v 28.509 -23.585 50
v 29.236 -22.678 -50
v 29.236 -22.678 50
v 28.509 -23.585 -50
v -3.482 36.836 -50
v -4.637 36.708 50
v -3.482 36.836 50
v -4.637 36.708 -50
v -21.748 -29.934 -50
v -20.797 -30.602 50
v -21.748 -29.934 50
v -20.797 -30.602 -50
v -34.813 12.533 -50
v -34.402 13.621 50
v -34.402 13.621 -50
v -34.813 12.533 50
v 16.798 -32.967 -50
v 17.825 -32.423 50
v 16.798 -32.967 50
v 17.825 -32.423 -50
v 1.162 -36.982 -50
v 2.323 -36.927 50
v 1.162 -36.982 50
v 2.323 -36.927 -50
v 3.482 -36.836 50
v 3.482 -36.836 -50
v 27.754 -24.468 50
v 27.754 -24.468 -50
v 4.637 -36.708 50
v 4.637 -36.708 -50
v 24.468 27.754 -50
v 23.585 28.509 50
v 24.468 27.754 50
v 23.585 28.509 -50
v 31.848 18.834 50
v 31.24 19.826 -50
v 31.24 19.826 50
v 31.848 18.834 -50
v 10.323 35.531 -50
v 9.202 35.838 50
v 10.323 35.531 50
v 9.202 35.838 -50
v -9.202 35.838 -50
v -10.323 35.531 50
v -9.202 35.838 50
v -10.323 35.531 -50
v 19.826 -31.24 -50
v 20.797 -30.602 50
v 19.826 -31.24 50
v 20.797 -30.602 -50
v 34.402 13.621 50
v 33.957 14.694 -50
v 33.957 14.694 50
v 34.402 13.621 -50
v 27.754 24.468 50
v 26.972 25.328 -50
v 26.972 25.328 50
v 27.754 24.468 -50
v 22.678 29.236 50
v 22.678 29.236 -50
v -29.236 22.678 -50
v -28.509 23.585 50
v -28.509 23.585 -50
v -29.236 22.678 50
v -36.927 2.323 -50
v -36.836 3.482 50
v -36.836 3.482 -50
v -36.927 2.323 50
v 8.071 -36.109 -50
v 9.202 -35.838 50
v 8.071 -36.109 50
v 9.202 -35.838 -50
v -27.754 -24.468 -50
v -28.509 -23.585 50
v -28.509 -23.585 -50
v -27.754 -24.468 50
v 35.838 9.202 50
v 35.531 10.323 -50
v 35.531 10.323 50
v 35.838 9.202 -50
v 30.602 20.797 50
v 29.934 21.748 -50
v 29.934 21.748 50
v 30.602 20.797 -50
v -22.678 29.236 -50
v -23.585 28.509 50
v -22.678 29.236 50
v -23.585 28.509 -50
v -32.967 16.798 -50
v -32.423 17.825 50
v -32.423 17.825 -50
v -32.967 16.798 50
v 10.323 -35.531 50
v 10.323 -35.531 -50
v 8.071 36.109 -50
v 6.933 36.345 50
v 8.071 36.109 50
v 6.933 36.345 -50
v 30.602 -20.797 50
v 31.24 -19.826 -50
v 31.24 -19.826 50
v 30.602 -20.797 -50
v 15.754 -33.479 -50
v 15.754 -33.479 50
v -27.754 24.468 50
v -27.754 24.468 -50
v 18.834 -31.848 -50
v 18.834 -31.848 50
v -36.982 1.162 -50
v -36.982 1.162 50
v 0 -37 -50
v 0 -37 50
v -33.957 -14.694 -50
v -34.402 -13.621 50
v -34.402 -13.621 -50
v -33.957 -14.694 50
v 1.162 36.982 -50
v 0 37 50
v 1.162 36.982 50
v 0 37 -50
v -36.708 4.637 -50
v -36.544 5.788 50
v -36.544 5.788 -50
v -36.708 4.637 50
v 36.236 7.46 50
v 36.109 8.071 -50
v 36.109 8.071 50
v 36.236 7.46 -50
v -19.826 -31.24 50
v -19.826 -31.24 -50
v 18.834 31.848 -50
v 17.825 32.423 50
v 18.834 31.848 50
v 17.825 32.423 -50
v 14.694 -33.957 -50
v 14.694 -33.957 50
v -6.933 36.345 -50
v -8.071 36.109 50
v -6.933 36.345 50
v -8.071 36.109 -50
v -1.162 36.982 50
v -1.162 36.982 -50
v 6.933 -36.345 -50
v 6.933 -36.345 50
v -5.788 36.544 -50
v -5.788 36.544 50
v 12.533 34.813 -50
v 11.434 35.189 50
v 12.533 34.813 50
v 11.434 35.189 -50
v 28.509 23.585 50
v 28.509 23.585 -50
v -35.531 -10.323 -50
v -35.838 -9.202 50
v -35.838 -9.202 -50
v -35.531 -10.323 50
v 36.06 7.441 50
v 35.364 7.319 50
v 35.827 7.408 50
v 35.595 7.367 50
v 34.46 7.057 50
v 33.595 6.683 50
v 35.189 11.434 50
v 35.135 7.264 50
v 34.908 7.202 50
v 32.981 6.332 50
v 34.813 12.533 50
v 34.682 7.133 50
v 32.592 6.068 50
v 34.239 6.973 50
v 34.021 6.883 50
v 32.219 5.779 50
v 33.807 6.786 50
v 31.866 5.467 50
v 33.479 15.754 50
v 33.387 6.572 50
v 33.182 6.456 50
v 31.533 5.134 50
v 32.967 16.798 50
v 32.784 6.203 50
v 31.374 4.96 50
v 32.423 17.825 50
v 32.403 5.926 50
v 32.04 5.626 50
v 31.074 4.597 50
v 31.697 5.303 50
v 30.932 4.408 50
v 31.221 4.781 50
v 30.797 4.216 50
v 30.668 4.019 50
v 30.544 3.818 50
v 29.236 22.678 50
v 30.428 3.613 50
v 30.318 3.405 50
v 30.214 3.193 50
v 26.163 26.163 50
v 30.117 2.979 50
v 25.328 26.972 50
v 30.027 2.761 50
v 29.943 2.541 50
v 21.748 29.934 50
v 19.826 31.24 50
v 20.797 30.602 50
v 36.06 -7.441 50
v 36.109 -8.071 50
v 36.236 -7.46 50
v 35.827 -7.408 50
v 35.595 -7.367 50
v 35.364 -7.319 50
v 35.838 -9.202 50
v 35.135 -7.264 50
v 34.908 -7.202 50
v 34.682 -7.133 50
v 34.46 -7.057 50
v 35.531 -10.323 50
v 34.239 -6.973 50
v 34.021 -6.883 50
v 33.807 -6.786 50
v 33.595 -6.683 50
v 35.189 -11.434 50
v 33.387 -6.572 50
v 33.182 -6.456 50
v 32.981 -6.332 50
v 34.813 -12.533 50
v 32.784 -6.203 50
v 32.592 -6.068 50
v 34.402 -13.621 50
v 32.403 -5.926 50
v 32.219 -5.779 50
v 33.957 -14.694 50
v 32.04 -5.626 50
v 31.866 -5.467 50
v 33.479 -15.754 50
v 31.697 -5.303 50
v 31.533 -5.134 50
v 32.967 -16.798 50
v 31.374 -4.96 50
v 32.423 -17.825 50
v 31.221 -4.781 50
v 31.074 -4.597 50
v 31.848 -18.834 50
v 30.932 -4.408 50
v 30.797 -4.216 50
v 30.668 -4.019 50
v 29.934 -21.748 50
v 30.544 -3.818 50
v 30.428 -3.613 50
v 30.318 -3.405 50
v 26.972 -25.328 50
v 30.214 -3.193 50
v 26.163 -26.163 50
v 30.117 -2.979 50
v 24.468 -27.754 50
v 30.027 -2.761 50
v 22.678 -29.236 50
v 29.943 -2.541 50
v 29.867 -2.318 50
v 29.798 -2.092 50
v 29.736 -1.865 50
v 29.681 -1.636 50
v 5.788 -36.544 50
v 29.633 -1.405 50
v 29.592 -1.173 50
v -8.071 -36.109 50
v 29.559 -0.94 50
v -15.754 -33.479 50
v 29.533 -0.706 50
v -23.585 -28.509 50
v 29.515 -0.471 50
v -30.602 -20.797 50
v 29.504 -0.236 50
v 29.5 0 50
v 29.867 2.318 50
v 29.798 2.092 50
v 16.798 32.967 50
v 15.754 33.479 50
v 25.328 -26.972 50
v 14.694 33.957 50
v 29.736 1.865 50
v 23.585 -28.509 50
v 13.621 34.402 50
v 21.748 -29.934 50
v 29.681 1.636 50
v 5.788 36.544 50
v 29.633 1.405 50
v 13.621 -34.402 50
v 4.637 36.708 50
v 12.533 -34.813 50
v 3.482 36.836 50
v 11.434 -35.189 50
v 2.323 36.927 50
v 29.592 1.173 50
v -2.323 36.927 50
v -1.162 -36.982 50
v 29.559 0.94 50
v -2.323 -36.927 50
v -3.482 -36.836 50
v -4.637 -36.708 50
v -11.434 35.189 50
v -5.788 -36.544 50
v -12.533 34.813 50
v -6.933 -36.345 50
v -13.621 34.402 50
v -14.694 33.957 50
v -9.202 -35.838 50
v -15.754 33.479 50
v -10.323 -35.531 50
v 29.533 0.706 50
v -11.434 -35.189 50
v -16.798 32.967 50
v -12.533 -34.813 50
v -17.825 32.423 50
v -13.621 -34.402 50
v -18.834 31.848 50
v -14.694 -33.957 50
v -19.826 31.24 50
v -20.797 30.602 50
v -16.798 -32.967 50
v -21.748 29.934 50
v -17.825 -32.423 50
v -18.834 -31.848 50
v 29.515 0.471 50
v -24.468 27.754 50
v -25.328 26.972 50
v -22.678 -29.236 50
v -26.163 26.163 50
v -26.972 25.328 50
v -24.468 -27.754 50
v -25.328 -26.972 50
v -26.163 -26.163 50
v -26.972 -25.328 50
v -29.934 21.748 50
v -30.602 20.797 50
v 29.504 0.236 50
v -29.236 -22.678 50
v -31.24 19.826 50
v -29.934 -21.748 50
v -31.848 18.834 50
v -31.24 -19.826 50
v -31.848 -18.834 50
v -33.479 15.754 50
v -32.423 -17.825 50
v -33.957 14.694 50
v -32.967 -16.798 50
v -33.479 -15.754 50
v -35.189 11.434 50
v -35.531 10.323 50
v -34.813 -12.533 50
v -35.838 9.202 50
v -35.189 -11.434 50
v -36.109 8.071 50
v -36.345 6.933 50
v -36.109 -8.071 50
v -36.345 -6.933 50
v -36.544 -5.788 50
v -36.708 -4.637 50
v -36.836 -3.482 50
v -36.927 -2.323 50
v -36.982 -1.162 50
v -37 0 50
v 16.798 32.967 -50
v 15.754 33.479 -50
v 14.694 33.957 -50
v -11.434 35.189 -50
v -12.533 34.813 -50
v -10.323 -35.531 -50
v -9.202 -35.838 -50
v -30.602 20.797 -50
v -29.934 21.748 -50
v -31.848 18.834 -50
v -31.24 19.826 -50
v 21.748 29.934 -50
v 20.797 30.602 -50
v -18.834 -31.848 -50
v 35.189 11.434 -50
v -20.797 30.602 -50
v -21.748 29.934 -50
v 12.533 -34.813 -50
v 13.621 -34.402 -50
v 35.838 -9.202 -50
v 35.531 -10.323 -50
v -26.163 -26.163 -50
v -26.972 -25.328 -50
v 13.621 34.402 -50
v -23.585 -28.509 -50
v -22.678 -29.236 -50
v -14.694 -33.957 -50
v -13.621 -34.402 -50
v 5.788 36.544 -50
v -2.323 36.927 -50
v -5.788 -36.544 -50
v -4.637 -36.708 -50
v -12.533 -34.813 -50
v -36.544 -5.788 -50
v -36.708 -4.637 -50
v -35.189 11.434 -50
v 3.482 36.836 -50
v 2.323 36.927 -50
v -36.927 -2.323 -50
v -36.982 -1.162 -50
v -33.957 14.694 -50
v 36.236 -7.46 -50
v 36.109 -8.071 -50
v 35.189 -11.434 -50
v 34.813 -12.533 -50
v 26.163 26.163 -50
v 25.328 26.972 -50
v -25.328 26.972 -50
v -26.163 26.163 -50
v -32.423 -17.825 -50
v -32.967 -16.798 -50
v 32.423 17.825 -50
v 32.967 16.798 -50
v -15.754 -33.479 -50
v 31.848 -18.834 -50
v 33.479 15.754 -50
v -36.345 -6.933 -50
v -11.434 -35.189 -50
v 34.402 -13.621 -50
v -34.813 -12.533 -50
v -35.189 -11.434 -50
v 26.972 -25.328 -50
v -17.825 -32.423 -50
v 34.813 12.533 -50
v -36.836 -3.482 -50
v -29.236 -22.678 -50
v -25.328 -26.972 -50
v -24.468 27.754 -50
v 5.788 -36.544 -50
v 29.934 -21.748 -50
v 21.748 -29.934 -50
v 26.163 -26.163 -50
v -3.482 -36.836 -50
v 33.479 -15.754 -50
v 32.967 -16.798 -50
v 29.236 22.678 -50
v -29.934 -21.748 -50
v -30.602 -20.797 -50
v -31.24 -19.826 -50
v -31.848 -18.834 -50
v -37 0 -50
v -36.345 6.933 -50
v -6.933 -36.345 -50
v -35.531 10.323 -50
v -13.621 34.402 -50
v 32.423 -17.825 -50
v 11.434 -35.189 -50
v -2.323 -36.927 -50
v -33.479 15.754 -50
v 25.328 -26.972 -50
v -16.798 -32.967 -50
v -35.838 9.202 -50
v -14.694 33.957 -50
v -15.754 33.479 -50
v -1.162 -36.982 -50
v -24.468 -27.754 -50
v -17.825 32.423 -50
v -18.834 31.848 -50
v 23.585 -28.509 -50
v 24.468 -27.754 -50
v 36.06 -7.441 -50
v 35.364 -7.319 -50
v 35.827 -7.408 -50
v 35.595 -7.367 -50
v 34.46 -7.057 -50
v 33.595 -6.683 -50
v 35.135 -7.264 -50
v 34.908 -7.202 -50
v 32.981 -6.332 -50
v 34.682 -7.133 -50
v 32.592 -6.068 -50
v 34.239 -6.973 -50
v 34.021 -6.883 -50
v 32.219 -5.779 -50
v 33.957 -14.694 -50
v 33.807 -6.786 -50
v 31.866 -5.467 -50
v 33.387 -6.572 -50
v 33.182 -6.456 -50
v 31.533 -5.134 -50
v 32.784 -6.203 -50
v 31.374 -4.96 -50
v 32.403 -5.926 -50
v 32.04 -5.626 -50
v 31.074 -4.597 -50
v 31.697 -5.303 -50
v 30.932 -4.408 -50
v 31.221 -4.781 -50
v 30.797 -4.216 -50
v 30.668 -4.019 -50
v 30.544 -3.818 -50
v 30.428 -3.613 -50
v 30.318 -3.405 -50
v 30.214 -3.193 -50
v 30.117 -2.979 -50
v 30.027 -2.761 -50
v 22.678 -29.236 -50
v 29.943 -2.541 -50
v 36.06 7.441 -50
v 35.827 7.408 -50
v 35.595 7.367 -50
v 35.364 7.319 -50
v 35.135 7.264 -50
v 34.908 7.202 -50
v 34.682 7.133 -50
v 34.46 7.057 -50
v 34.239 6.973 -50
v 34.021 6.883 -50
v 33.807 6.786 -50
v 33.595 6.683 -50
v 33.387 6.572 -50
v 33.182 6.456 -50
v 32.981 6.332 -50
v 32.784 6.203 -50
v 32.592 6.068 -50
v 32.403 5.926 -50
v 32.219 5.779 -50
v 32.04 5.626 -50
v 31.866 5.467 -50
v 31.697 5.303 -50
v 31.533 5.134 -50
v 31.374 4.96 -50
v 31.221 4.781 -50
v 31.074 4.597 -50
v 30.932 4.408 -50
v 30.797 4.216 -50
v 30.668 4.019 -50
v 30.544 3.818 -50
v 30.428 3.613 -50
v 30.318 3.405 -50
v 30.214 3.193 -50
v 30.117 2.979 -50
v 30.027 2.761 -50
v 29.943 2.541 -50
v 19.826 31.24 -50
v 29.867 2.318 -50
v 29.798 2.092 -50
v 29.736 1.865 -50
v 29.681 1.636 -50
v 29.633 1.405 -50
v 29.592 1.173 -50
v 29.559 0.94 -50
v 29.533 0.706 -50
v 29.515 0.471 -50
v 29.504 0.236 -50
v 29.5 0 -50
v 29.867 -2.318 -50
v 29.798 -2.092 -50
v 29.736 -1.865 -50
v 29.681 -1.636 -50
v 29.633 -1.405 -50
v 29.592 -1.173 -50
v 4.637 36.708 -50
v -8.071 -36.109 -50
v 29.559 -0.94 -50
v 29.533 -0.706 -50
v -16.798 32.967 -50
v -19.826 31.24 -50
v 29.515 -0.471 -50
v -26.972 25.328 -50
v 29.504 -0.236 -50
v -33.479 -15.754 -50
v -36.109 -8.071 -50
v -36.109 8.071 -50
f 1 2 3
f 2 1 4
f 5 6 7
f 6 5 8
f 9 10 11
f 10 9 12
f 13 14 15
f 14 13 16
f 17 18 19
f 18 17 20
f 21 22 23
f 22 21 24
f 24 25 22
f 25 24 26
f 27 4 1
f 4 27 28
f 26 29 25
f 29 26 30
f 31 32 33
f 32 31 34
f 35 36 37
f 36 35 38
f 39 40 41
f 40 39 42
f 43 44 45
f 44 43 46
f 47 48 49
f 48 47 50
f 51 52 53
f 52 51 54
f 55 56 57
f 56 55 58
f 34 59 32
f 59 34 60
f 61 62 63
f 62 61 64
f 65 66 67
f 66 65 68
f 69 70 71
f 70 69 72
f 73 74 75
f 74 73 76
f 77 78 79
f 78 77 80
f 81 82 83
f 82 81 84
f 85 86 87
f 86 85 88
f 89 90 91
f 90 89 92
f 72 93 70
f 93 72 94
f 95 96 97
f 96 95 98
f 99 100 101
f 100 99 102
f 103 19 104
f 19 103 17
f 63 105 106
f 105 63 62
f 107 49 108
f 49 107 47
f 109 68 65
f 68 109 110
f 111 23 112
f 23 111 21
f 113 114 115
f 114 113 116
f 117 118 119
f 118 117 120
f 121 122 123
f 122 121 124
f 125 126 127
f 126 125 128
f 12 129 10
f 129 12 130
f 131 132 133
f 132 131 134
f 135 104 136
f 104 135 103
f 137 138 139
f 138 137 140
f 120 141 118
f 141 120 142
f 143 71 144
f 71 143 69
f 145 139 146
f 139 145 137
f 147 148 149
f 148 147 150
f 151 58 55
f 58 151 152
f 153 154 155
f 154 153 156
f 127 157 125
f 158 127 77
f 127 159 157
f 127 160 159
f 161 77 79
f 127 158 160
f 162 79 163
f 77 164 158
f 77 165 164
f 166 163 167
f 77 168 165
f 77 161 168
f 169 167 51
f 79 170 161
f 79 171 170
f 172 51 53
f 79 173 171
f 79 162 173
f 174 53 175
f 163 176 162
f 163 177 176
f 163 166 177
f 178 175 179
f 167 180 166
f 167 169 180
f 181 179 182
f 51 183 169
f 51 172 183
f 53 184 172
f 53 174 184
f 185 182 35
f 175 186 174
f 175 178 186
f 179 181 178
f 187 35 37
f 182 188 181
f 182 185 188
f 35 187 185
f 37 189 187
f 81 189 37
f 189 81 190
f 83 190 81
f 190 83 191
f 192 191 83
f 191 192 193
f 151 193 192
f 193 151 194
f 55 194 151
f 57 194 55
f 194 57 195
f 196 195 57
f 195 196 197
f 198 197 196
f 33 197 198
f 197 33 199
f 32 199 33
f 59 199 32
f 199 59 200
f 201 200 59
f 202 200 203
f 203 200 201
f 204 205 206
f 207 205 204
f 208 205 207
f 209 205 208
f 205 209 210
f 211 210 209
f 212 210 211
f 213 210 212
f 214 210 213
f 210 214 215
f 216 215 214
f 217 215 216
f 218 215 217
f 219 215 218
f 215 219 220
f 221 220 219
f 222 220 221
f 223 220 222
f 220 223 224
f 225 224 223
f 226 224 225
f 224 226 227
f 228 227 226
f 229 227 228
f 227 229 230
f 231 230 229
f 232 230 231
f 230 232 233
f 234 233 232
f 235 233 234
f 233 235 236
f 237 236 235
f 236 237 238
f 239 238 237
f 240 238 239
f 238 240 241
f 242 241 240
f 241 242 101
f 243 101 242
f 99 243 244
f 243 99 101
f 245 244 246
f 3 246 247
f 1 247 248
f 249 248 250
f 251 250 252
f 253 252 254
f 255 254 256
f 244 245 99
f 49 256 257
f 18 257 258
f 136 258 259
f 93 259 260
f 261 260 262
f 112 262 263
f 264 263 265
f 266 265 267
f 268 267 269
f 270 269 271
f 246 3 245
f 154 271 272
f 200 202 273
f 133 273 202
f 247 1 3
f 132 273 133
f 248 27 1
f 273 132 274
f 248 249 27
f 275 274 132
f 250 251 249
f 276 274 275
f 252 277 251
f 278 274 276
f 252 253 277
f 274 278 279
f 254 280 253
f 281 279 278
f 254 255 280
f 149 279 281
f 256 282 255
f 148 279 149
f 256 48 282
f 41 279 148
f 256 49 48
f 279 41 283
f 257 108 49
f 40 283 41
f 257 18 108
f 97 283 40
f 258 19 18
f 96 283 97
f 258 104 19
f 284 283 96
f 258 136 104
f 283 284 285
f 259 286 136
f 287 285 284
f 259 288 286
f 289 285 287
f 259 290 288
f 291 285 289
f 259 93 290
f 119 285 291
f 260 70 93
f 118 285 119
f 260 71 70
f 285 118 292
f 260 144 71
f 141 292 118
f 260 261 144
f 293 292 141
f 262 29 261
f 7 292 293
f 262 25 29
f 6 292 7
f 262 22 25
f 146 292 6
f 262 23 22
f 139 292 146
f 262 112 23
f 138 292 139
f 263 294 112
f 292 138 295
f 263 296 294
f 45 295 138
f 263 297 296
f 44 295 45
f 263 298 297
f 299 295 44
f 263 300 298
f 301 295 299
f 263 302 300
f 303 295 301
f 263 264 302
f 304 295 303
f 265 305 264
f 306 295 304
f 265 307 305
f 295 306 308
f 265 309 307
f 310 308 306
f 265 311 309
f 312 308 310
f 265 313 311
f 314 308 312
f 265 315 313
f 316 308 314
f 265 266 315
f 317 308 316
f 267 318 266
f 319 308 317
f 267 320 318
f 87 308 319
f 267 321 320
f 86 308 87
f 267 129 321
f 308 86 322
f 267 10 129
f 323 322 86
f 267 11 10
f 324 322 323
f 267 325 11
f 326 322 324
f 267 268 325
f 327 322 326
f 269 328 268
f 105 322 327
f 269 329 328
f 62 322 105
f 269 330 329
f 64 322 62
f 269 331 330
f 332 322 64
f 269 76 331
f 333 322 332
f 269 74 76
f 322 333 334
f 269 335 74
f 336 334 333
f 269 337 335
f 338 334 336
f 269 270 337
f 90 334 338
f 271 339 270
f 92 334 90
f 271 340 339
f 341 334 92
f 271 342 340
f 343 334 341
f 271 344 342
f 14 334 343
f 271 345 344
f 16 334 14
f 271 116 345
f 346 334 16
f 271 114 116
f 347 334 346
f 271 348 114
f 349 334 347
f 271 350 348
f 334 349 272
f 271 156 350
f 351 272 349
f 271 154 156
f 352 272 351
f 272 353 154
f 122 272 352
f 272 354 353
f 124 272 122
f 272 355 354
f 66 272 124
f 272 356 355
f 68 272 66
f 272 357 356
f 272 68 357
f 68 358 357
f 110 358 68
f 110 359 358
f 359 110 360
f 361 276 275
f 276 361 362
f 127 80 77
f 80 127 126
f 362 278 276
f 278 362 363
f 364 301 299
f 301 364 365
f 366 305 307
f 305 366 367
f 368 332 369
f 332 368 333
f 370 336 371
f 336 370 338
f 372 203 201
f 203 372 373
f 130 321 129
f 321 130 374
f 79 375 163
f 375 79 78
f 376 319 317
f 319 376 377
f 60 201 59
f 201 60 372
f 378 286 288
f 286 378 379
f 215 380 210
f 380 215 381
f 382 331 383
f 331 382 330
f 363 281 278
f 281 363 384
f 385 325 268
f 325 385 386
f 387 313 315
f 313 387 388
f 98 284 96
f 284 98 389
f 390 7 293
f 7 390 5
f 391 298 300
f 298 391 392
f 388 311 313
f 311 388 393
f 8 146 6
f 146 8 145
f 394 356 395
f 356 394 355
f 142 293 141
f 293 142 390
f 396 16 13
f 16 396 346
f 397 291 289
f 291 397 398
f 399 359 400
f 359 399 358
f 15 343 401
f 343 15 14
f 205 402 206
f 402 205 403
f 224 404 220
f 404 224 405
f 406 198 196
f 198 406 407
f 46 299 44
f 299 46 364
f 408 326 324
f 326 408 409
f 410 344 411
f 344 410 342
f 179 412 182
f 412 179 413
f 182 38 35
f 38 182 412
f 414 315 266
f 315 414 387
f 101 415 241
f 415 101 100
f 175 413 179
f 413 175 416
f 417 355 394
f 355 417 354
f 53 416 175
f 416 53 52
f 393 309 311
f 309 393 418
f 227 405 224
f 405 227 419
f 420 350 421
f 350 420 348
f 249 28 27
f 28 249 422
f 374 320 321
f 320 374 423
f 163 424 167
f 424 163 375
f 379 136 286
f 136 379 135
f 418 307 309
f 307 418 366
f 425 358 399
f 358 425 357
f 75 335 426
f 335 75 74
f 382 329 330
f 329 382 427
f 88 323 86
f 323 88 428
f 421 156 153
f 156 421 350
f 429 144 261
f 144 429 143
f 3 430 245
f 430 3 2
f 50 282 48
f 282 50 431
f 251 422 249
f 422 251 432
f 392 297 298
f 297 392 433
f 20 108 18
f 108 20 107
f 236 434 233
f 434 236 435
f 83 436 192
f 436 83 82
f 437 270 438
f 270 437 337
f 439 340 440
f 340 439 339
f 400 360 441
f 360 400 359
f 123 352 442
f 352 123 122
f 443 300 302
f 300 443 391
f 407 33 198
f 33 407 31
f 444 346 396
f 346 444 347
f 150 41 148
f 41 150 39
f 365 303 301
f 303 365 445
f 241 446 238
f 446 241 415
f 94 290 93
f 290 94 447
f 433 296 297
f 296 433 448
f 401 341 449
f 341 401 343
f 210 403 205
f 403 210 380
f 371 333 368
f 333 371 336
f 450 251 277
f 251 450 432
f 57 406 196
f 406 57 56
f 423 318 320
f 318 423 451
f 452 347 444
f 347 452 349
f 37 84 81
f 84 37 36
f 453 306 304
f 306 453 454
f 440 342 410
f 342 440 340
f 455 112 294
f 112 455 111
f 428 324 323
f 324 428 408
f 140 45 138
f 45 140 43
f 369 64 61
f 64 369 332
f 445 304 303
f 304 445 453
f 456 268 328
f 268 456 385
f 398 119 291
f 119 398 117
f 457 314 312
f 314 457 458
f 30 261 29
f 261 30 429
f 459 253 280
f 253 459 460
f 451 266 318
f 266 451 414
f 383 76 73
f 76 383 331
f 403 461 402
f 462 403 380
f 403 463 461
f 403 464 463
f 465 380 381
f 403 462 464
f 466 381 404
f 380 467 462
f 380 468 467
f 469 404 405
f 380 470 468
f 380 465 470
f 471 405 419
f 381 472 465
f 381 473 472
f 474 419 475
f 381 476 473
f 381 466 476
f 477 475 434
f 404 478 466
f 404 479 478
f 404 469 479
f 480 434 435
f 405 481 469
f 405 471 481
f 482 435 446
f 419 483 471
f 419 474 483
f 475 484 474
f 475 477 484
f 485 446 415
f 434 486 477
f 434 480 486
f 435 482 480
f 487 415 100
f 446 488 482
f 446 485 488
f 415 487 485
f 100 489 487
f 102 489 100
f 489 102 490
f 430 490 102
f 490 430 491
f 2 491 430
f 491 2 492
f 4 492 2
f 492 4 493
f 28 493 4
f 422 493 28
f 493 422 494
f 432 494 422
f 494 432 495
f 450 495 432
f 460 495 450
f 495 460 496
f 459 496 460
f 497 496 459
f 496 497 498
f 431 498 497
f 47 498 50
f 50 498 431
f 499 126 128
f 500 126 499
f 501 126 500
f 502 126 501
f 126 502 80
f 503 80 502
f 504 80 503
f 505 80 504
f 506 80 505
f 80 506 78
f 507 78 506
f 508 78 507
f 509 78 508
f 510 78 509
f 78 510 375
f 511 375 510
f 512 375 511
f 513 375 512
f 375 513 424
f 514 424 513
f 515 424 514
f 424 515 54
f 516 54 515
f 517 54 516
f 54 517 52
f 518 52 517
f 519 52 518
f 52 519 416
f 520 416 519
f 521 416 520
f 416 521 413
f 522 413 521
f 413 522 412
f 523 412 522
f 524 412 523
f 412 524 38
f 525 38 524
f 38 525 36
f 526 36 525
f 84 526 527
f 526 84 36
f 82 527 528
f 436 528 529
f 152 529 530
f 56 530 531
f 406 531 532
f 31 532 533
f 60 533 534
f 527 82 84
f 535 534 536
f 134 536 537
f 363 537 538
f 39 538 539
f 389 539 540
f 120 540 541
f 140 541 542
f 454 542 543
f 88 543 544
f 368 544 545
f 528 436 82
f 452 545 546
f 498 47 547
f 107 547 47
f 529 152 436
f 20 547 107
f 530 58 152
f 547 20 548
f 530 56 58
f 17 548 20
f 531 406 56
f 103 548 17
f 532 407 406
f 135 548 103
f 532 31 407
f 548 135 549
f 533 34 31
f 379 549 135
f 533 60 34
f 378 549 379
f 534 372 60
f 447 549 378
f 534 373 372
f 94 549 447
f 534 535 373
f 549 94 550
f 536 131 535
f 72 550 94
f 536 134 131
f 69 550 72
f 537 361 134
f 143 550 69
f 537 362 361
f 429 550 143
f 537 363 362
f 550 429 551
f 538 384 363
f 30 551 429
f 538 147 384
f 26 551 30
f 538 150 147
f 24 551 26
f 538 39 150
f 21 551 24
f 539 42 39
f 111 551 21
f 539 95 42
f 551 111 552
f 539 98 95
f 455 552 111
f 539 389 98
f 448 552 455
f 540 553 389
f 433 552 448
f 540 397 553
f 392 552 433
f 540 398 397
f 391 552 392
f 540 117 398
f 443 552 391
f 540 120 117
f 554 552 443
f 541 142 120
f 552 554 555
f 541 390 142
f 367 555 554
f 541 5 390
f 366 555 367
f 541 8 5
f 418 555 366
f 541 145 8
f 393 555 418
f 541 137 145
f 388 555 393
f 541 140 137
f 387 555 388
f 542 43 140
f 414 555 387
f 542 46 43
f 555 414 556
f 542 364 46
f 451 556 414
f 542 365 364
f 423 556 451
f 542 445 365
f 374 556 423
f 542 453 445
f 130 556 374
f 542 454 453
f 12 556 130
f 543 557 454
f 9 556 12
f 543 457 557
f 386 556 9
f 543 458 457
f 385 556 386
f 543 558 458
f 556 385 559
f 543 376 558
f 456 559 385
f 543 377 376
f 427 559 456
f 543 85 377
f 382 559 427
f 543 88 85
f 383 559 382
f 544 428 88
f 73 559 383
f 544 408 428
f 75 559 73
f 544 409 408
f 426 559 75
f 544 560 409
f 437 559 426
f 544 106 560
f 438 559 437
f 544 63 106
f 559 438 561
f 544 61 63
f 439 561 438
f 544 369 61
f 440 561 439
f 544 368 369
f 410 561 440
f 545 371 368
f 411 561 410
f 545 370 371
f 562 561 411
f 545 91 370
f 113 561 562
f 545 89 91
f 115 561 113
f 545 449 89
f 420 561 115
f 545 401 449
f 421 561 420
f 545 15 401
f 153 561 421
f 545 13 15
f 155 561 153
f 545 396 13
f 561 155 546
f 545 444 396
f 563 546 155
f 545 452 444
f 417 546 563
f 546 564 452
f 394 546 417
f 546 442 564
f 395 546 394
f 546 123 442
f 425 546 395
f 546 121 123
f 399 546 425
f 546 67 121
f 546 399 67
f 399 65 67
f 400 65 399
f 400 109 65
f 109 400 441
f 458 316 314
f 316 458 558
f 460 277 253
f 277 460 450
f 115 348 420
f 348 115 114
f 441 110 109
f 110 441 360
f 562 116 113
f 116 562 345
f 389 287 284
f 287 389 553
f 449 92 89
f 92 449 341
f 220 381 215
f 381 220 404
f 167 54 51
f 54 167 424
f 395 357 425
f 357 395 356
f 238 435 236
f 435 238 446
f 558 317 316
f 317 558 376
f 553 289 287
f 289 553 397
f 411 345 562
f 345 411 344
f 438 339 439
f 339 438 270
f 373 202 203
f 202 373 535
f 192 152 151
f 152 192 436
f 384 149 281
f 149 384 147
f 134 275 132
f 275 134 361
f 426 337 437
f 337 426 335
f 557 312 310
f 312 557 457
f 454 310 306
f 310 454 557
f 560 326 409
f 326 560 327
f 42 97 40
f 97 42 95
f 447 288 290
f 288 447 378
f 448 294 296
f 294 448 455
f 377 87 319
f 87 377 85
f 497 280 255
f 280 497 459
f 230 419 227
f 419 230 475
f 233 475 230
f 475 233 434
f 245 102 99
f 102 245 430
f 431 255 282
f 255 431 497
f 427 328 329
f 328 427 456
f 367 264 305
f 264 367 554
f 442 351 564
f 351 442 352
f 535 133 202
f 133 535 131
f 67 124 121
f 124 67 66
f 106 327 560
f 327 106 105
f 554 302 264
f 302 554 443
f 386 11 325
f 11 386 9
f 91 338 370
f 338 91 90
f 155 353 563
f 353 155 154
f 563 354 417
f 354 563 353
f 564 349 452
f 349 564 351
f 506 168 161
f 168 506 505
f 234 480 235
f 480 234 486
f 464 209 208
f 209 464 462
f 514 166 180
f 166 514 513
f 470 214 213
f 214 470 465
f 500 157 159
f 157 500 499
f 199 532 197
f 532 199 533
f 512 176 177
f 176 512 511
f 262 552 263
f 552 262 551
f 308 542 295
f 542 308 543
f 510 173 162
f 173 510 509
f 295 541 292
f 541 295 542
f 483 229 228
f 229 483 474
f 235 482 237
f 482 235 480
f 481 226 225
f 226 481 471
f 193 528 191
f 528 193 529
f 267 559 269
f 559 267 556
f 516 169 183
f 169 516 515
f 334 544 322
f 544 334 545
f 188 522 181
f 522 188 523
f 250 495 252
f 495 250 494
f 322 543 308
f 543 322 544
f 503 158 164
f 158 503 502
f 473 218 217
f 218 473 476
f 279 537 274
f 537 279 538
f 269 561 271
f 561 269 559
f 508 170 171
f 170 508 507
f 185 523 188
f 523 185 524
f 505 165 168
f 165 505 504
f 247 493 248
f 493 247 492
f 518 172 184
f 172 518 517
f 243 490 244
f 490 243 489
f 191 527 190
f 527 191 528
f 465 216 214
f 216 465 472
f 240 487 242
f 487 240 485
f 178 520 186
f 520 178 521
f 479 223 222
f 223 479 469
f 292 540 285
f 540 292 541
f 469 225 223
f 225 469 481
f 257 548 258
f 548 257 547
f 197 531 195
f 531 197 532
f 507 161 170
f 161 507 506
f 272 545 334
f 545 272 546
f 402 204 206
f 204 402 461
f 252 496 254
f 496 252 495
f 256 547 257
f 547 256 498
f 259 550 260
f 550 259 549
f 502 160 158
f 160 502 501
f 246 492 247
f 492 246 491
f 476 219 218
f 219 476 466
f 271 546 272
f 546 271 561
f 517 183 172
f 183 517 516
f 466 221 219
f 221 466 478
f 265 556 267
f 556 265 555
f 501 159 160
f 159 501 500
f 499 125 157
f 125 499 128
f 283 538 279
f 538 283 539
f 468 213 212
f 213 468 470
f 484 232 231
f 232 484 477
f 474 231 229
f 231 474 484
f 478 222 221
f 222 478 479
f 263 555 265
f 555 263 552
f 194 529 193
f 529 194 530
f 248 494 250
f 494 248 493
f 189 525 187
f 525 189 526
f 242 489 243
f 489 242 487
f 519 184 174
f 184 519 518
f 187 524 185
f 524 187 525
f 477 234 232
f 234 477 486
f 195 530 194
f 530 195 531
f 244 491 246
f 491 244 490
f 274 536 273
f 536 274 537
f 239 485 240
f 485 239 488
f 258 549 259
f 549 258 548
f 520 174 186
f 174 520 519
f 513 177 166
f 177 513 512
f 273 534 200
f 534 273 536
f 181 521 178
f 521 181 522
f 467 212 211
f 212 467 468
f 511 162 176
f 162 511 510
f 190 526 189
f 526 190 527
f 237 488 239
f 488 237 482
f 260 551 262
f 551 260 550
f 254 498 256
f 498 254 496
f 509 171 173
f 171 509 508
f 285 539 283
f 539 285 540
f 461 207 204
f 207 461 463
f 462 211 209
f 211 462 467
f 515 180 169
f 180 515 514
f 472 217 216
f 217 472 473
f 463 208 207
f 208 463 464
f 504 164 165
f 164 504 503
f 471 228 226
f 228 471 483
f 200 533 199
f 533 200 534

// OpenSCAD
JuicerPusher(74, 100, 15);
$fn = 200;

module JuicerPusher(diameter, length, notch_diameter) {
    difference() {
        cylinder(d = diameter, h = length, center = true);
        translate([diameter / 2, 0, 0]) Notch(notch_diameter, length);
    }
}

module Notch(diameter, length) {
    cylinder(d = diameter, h=length, center = true);
}
